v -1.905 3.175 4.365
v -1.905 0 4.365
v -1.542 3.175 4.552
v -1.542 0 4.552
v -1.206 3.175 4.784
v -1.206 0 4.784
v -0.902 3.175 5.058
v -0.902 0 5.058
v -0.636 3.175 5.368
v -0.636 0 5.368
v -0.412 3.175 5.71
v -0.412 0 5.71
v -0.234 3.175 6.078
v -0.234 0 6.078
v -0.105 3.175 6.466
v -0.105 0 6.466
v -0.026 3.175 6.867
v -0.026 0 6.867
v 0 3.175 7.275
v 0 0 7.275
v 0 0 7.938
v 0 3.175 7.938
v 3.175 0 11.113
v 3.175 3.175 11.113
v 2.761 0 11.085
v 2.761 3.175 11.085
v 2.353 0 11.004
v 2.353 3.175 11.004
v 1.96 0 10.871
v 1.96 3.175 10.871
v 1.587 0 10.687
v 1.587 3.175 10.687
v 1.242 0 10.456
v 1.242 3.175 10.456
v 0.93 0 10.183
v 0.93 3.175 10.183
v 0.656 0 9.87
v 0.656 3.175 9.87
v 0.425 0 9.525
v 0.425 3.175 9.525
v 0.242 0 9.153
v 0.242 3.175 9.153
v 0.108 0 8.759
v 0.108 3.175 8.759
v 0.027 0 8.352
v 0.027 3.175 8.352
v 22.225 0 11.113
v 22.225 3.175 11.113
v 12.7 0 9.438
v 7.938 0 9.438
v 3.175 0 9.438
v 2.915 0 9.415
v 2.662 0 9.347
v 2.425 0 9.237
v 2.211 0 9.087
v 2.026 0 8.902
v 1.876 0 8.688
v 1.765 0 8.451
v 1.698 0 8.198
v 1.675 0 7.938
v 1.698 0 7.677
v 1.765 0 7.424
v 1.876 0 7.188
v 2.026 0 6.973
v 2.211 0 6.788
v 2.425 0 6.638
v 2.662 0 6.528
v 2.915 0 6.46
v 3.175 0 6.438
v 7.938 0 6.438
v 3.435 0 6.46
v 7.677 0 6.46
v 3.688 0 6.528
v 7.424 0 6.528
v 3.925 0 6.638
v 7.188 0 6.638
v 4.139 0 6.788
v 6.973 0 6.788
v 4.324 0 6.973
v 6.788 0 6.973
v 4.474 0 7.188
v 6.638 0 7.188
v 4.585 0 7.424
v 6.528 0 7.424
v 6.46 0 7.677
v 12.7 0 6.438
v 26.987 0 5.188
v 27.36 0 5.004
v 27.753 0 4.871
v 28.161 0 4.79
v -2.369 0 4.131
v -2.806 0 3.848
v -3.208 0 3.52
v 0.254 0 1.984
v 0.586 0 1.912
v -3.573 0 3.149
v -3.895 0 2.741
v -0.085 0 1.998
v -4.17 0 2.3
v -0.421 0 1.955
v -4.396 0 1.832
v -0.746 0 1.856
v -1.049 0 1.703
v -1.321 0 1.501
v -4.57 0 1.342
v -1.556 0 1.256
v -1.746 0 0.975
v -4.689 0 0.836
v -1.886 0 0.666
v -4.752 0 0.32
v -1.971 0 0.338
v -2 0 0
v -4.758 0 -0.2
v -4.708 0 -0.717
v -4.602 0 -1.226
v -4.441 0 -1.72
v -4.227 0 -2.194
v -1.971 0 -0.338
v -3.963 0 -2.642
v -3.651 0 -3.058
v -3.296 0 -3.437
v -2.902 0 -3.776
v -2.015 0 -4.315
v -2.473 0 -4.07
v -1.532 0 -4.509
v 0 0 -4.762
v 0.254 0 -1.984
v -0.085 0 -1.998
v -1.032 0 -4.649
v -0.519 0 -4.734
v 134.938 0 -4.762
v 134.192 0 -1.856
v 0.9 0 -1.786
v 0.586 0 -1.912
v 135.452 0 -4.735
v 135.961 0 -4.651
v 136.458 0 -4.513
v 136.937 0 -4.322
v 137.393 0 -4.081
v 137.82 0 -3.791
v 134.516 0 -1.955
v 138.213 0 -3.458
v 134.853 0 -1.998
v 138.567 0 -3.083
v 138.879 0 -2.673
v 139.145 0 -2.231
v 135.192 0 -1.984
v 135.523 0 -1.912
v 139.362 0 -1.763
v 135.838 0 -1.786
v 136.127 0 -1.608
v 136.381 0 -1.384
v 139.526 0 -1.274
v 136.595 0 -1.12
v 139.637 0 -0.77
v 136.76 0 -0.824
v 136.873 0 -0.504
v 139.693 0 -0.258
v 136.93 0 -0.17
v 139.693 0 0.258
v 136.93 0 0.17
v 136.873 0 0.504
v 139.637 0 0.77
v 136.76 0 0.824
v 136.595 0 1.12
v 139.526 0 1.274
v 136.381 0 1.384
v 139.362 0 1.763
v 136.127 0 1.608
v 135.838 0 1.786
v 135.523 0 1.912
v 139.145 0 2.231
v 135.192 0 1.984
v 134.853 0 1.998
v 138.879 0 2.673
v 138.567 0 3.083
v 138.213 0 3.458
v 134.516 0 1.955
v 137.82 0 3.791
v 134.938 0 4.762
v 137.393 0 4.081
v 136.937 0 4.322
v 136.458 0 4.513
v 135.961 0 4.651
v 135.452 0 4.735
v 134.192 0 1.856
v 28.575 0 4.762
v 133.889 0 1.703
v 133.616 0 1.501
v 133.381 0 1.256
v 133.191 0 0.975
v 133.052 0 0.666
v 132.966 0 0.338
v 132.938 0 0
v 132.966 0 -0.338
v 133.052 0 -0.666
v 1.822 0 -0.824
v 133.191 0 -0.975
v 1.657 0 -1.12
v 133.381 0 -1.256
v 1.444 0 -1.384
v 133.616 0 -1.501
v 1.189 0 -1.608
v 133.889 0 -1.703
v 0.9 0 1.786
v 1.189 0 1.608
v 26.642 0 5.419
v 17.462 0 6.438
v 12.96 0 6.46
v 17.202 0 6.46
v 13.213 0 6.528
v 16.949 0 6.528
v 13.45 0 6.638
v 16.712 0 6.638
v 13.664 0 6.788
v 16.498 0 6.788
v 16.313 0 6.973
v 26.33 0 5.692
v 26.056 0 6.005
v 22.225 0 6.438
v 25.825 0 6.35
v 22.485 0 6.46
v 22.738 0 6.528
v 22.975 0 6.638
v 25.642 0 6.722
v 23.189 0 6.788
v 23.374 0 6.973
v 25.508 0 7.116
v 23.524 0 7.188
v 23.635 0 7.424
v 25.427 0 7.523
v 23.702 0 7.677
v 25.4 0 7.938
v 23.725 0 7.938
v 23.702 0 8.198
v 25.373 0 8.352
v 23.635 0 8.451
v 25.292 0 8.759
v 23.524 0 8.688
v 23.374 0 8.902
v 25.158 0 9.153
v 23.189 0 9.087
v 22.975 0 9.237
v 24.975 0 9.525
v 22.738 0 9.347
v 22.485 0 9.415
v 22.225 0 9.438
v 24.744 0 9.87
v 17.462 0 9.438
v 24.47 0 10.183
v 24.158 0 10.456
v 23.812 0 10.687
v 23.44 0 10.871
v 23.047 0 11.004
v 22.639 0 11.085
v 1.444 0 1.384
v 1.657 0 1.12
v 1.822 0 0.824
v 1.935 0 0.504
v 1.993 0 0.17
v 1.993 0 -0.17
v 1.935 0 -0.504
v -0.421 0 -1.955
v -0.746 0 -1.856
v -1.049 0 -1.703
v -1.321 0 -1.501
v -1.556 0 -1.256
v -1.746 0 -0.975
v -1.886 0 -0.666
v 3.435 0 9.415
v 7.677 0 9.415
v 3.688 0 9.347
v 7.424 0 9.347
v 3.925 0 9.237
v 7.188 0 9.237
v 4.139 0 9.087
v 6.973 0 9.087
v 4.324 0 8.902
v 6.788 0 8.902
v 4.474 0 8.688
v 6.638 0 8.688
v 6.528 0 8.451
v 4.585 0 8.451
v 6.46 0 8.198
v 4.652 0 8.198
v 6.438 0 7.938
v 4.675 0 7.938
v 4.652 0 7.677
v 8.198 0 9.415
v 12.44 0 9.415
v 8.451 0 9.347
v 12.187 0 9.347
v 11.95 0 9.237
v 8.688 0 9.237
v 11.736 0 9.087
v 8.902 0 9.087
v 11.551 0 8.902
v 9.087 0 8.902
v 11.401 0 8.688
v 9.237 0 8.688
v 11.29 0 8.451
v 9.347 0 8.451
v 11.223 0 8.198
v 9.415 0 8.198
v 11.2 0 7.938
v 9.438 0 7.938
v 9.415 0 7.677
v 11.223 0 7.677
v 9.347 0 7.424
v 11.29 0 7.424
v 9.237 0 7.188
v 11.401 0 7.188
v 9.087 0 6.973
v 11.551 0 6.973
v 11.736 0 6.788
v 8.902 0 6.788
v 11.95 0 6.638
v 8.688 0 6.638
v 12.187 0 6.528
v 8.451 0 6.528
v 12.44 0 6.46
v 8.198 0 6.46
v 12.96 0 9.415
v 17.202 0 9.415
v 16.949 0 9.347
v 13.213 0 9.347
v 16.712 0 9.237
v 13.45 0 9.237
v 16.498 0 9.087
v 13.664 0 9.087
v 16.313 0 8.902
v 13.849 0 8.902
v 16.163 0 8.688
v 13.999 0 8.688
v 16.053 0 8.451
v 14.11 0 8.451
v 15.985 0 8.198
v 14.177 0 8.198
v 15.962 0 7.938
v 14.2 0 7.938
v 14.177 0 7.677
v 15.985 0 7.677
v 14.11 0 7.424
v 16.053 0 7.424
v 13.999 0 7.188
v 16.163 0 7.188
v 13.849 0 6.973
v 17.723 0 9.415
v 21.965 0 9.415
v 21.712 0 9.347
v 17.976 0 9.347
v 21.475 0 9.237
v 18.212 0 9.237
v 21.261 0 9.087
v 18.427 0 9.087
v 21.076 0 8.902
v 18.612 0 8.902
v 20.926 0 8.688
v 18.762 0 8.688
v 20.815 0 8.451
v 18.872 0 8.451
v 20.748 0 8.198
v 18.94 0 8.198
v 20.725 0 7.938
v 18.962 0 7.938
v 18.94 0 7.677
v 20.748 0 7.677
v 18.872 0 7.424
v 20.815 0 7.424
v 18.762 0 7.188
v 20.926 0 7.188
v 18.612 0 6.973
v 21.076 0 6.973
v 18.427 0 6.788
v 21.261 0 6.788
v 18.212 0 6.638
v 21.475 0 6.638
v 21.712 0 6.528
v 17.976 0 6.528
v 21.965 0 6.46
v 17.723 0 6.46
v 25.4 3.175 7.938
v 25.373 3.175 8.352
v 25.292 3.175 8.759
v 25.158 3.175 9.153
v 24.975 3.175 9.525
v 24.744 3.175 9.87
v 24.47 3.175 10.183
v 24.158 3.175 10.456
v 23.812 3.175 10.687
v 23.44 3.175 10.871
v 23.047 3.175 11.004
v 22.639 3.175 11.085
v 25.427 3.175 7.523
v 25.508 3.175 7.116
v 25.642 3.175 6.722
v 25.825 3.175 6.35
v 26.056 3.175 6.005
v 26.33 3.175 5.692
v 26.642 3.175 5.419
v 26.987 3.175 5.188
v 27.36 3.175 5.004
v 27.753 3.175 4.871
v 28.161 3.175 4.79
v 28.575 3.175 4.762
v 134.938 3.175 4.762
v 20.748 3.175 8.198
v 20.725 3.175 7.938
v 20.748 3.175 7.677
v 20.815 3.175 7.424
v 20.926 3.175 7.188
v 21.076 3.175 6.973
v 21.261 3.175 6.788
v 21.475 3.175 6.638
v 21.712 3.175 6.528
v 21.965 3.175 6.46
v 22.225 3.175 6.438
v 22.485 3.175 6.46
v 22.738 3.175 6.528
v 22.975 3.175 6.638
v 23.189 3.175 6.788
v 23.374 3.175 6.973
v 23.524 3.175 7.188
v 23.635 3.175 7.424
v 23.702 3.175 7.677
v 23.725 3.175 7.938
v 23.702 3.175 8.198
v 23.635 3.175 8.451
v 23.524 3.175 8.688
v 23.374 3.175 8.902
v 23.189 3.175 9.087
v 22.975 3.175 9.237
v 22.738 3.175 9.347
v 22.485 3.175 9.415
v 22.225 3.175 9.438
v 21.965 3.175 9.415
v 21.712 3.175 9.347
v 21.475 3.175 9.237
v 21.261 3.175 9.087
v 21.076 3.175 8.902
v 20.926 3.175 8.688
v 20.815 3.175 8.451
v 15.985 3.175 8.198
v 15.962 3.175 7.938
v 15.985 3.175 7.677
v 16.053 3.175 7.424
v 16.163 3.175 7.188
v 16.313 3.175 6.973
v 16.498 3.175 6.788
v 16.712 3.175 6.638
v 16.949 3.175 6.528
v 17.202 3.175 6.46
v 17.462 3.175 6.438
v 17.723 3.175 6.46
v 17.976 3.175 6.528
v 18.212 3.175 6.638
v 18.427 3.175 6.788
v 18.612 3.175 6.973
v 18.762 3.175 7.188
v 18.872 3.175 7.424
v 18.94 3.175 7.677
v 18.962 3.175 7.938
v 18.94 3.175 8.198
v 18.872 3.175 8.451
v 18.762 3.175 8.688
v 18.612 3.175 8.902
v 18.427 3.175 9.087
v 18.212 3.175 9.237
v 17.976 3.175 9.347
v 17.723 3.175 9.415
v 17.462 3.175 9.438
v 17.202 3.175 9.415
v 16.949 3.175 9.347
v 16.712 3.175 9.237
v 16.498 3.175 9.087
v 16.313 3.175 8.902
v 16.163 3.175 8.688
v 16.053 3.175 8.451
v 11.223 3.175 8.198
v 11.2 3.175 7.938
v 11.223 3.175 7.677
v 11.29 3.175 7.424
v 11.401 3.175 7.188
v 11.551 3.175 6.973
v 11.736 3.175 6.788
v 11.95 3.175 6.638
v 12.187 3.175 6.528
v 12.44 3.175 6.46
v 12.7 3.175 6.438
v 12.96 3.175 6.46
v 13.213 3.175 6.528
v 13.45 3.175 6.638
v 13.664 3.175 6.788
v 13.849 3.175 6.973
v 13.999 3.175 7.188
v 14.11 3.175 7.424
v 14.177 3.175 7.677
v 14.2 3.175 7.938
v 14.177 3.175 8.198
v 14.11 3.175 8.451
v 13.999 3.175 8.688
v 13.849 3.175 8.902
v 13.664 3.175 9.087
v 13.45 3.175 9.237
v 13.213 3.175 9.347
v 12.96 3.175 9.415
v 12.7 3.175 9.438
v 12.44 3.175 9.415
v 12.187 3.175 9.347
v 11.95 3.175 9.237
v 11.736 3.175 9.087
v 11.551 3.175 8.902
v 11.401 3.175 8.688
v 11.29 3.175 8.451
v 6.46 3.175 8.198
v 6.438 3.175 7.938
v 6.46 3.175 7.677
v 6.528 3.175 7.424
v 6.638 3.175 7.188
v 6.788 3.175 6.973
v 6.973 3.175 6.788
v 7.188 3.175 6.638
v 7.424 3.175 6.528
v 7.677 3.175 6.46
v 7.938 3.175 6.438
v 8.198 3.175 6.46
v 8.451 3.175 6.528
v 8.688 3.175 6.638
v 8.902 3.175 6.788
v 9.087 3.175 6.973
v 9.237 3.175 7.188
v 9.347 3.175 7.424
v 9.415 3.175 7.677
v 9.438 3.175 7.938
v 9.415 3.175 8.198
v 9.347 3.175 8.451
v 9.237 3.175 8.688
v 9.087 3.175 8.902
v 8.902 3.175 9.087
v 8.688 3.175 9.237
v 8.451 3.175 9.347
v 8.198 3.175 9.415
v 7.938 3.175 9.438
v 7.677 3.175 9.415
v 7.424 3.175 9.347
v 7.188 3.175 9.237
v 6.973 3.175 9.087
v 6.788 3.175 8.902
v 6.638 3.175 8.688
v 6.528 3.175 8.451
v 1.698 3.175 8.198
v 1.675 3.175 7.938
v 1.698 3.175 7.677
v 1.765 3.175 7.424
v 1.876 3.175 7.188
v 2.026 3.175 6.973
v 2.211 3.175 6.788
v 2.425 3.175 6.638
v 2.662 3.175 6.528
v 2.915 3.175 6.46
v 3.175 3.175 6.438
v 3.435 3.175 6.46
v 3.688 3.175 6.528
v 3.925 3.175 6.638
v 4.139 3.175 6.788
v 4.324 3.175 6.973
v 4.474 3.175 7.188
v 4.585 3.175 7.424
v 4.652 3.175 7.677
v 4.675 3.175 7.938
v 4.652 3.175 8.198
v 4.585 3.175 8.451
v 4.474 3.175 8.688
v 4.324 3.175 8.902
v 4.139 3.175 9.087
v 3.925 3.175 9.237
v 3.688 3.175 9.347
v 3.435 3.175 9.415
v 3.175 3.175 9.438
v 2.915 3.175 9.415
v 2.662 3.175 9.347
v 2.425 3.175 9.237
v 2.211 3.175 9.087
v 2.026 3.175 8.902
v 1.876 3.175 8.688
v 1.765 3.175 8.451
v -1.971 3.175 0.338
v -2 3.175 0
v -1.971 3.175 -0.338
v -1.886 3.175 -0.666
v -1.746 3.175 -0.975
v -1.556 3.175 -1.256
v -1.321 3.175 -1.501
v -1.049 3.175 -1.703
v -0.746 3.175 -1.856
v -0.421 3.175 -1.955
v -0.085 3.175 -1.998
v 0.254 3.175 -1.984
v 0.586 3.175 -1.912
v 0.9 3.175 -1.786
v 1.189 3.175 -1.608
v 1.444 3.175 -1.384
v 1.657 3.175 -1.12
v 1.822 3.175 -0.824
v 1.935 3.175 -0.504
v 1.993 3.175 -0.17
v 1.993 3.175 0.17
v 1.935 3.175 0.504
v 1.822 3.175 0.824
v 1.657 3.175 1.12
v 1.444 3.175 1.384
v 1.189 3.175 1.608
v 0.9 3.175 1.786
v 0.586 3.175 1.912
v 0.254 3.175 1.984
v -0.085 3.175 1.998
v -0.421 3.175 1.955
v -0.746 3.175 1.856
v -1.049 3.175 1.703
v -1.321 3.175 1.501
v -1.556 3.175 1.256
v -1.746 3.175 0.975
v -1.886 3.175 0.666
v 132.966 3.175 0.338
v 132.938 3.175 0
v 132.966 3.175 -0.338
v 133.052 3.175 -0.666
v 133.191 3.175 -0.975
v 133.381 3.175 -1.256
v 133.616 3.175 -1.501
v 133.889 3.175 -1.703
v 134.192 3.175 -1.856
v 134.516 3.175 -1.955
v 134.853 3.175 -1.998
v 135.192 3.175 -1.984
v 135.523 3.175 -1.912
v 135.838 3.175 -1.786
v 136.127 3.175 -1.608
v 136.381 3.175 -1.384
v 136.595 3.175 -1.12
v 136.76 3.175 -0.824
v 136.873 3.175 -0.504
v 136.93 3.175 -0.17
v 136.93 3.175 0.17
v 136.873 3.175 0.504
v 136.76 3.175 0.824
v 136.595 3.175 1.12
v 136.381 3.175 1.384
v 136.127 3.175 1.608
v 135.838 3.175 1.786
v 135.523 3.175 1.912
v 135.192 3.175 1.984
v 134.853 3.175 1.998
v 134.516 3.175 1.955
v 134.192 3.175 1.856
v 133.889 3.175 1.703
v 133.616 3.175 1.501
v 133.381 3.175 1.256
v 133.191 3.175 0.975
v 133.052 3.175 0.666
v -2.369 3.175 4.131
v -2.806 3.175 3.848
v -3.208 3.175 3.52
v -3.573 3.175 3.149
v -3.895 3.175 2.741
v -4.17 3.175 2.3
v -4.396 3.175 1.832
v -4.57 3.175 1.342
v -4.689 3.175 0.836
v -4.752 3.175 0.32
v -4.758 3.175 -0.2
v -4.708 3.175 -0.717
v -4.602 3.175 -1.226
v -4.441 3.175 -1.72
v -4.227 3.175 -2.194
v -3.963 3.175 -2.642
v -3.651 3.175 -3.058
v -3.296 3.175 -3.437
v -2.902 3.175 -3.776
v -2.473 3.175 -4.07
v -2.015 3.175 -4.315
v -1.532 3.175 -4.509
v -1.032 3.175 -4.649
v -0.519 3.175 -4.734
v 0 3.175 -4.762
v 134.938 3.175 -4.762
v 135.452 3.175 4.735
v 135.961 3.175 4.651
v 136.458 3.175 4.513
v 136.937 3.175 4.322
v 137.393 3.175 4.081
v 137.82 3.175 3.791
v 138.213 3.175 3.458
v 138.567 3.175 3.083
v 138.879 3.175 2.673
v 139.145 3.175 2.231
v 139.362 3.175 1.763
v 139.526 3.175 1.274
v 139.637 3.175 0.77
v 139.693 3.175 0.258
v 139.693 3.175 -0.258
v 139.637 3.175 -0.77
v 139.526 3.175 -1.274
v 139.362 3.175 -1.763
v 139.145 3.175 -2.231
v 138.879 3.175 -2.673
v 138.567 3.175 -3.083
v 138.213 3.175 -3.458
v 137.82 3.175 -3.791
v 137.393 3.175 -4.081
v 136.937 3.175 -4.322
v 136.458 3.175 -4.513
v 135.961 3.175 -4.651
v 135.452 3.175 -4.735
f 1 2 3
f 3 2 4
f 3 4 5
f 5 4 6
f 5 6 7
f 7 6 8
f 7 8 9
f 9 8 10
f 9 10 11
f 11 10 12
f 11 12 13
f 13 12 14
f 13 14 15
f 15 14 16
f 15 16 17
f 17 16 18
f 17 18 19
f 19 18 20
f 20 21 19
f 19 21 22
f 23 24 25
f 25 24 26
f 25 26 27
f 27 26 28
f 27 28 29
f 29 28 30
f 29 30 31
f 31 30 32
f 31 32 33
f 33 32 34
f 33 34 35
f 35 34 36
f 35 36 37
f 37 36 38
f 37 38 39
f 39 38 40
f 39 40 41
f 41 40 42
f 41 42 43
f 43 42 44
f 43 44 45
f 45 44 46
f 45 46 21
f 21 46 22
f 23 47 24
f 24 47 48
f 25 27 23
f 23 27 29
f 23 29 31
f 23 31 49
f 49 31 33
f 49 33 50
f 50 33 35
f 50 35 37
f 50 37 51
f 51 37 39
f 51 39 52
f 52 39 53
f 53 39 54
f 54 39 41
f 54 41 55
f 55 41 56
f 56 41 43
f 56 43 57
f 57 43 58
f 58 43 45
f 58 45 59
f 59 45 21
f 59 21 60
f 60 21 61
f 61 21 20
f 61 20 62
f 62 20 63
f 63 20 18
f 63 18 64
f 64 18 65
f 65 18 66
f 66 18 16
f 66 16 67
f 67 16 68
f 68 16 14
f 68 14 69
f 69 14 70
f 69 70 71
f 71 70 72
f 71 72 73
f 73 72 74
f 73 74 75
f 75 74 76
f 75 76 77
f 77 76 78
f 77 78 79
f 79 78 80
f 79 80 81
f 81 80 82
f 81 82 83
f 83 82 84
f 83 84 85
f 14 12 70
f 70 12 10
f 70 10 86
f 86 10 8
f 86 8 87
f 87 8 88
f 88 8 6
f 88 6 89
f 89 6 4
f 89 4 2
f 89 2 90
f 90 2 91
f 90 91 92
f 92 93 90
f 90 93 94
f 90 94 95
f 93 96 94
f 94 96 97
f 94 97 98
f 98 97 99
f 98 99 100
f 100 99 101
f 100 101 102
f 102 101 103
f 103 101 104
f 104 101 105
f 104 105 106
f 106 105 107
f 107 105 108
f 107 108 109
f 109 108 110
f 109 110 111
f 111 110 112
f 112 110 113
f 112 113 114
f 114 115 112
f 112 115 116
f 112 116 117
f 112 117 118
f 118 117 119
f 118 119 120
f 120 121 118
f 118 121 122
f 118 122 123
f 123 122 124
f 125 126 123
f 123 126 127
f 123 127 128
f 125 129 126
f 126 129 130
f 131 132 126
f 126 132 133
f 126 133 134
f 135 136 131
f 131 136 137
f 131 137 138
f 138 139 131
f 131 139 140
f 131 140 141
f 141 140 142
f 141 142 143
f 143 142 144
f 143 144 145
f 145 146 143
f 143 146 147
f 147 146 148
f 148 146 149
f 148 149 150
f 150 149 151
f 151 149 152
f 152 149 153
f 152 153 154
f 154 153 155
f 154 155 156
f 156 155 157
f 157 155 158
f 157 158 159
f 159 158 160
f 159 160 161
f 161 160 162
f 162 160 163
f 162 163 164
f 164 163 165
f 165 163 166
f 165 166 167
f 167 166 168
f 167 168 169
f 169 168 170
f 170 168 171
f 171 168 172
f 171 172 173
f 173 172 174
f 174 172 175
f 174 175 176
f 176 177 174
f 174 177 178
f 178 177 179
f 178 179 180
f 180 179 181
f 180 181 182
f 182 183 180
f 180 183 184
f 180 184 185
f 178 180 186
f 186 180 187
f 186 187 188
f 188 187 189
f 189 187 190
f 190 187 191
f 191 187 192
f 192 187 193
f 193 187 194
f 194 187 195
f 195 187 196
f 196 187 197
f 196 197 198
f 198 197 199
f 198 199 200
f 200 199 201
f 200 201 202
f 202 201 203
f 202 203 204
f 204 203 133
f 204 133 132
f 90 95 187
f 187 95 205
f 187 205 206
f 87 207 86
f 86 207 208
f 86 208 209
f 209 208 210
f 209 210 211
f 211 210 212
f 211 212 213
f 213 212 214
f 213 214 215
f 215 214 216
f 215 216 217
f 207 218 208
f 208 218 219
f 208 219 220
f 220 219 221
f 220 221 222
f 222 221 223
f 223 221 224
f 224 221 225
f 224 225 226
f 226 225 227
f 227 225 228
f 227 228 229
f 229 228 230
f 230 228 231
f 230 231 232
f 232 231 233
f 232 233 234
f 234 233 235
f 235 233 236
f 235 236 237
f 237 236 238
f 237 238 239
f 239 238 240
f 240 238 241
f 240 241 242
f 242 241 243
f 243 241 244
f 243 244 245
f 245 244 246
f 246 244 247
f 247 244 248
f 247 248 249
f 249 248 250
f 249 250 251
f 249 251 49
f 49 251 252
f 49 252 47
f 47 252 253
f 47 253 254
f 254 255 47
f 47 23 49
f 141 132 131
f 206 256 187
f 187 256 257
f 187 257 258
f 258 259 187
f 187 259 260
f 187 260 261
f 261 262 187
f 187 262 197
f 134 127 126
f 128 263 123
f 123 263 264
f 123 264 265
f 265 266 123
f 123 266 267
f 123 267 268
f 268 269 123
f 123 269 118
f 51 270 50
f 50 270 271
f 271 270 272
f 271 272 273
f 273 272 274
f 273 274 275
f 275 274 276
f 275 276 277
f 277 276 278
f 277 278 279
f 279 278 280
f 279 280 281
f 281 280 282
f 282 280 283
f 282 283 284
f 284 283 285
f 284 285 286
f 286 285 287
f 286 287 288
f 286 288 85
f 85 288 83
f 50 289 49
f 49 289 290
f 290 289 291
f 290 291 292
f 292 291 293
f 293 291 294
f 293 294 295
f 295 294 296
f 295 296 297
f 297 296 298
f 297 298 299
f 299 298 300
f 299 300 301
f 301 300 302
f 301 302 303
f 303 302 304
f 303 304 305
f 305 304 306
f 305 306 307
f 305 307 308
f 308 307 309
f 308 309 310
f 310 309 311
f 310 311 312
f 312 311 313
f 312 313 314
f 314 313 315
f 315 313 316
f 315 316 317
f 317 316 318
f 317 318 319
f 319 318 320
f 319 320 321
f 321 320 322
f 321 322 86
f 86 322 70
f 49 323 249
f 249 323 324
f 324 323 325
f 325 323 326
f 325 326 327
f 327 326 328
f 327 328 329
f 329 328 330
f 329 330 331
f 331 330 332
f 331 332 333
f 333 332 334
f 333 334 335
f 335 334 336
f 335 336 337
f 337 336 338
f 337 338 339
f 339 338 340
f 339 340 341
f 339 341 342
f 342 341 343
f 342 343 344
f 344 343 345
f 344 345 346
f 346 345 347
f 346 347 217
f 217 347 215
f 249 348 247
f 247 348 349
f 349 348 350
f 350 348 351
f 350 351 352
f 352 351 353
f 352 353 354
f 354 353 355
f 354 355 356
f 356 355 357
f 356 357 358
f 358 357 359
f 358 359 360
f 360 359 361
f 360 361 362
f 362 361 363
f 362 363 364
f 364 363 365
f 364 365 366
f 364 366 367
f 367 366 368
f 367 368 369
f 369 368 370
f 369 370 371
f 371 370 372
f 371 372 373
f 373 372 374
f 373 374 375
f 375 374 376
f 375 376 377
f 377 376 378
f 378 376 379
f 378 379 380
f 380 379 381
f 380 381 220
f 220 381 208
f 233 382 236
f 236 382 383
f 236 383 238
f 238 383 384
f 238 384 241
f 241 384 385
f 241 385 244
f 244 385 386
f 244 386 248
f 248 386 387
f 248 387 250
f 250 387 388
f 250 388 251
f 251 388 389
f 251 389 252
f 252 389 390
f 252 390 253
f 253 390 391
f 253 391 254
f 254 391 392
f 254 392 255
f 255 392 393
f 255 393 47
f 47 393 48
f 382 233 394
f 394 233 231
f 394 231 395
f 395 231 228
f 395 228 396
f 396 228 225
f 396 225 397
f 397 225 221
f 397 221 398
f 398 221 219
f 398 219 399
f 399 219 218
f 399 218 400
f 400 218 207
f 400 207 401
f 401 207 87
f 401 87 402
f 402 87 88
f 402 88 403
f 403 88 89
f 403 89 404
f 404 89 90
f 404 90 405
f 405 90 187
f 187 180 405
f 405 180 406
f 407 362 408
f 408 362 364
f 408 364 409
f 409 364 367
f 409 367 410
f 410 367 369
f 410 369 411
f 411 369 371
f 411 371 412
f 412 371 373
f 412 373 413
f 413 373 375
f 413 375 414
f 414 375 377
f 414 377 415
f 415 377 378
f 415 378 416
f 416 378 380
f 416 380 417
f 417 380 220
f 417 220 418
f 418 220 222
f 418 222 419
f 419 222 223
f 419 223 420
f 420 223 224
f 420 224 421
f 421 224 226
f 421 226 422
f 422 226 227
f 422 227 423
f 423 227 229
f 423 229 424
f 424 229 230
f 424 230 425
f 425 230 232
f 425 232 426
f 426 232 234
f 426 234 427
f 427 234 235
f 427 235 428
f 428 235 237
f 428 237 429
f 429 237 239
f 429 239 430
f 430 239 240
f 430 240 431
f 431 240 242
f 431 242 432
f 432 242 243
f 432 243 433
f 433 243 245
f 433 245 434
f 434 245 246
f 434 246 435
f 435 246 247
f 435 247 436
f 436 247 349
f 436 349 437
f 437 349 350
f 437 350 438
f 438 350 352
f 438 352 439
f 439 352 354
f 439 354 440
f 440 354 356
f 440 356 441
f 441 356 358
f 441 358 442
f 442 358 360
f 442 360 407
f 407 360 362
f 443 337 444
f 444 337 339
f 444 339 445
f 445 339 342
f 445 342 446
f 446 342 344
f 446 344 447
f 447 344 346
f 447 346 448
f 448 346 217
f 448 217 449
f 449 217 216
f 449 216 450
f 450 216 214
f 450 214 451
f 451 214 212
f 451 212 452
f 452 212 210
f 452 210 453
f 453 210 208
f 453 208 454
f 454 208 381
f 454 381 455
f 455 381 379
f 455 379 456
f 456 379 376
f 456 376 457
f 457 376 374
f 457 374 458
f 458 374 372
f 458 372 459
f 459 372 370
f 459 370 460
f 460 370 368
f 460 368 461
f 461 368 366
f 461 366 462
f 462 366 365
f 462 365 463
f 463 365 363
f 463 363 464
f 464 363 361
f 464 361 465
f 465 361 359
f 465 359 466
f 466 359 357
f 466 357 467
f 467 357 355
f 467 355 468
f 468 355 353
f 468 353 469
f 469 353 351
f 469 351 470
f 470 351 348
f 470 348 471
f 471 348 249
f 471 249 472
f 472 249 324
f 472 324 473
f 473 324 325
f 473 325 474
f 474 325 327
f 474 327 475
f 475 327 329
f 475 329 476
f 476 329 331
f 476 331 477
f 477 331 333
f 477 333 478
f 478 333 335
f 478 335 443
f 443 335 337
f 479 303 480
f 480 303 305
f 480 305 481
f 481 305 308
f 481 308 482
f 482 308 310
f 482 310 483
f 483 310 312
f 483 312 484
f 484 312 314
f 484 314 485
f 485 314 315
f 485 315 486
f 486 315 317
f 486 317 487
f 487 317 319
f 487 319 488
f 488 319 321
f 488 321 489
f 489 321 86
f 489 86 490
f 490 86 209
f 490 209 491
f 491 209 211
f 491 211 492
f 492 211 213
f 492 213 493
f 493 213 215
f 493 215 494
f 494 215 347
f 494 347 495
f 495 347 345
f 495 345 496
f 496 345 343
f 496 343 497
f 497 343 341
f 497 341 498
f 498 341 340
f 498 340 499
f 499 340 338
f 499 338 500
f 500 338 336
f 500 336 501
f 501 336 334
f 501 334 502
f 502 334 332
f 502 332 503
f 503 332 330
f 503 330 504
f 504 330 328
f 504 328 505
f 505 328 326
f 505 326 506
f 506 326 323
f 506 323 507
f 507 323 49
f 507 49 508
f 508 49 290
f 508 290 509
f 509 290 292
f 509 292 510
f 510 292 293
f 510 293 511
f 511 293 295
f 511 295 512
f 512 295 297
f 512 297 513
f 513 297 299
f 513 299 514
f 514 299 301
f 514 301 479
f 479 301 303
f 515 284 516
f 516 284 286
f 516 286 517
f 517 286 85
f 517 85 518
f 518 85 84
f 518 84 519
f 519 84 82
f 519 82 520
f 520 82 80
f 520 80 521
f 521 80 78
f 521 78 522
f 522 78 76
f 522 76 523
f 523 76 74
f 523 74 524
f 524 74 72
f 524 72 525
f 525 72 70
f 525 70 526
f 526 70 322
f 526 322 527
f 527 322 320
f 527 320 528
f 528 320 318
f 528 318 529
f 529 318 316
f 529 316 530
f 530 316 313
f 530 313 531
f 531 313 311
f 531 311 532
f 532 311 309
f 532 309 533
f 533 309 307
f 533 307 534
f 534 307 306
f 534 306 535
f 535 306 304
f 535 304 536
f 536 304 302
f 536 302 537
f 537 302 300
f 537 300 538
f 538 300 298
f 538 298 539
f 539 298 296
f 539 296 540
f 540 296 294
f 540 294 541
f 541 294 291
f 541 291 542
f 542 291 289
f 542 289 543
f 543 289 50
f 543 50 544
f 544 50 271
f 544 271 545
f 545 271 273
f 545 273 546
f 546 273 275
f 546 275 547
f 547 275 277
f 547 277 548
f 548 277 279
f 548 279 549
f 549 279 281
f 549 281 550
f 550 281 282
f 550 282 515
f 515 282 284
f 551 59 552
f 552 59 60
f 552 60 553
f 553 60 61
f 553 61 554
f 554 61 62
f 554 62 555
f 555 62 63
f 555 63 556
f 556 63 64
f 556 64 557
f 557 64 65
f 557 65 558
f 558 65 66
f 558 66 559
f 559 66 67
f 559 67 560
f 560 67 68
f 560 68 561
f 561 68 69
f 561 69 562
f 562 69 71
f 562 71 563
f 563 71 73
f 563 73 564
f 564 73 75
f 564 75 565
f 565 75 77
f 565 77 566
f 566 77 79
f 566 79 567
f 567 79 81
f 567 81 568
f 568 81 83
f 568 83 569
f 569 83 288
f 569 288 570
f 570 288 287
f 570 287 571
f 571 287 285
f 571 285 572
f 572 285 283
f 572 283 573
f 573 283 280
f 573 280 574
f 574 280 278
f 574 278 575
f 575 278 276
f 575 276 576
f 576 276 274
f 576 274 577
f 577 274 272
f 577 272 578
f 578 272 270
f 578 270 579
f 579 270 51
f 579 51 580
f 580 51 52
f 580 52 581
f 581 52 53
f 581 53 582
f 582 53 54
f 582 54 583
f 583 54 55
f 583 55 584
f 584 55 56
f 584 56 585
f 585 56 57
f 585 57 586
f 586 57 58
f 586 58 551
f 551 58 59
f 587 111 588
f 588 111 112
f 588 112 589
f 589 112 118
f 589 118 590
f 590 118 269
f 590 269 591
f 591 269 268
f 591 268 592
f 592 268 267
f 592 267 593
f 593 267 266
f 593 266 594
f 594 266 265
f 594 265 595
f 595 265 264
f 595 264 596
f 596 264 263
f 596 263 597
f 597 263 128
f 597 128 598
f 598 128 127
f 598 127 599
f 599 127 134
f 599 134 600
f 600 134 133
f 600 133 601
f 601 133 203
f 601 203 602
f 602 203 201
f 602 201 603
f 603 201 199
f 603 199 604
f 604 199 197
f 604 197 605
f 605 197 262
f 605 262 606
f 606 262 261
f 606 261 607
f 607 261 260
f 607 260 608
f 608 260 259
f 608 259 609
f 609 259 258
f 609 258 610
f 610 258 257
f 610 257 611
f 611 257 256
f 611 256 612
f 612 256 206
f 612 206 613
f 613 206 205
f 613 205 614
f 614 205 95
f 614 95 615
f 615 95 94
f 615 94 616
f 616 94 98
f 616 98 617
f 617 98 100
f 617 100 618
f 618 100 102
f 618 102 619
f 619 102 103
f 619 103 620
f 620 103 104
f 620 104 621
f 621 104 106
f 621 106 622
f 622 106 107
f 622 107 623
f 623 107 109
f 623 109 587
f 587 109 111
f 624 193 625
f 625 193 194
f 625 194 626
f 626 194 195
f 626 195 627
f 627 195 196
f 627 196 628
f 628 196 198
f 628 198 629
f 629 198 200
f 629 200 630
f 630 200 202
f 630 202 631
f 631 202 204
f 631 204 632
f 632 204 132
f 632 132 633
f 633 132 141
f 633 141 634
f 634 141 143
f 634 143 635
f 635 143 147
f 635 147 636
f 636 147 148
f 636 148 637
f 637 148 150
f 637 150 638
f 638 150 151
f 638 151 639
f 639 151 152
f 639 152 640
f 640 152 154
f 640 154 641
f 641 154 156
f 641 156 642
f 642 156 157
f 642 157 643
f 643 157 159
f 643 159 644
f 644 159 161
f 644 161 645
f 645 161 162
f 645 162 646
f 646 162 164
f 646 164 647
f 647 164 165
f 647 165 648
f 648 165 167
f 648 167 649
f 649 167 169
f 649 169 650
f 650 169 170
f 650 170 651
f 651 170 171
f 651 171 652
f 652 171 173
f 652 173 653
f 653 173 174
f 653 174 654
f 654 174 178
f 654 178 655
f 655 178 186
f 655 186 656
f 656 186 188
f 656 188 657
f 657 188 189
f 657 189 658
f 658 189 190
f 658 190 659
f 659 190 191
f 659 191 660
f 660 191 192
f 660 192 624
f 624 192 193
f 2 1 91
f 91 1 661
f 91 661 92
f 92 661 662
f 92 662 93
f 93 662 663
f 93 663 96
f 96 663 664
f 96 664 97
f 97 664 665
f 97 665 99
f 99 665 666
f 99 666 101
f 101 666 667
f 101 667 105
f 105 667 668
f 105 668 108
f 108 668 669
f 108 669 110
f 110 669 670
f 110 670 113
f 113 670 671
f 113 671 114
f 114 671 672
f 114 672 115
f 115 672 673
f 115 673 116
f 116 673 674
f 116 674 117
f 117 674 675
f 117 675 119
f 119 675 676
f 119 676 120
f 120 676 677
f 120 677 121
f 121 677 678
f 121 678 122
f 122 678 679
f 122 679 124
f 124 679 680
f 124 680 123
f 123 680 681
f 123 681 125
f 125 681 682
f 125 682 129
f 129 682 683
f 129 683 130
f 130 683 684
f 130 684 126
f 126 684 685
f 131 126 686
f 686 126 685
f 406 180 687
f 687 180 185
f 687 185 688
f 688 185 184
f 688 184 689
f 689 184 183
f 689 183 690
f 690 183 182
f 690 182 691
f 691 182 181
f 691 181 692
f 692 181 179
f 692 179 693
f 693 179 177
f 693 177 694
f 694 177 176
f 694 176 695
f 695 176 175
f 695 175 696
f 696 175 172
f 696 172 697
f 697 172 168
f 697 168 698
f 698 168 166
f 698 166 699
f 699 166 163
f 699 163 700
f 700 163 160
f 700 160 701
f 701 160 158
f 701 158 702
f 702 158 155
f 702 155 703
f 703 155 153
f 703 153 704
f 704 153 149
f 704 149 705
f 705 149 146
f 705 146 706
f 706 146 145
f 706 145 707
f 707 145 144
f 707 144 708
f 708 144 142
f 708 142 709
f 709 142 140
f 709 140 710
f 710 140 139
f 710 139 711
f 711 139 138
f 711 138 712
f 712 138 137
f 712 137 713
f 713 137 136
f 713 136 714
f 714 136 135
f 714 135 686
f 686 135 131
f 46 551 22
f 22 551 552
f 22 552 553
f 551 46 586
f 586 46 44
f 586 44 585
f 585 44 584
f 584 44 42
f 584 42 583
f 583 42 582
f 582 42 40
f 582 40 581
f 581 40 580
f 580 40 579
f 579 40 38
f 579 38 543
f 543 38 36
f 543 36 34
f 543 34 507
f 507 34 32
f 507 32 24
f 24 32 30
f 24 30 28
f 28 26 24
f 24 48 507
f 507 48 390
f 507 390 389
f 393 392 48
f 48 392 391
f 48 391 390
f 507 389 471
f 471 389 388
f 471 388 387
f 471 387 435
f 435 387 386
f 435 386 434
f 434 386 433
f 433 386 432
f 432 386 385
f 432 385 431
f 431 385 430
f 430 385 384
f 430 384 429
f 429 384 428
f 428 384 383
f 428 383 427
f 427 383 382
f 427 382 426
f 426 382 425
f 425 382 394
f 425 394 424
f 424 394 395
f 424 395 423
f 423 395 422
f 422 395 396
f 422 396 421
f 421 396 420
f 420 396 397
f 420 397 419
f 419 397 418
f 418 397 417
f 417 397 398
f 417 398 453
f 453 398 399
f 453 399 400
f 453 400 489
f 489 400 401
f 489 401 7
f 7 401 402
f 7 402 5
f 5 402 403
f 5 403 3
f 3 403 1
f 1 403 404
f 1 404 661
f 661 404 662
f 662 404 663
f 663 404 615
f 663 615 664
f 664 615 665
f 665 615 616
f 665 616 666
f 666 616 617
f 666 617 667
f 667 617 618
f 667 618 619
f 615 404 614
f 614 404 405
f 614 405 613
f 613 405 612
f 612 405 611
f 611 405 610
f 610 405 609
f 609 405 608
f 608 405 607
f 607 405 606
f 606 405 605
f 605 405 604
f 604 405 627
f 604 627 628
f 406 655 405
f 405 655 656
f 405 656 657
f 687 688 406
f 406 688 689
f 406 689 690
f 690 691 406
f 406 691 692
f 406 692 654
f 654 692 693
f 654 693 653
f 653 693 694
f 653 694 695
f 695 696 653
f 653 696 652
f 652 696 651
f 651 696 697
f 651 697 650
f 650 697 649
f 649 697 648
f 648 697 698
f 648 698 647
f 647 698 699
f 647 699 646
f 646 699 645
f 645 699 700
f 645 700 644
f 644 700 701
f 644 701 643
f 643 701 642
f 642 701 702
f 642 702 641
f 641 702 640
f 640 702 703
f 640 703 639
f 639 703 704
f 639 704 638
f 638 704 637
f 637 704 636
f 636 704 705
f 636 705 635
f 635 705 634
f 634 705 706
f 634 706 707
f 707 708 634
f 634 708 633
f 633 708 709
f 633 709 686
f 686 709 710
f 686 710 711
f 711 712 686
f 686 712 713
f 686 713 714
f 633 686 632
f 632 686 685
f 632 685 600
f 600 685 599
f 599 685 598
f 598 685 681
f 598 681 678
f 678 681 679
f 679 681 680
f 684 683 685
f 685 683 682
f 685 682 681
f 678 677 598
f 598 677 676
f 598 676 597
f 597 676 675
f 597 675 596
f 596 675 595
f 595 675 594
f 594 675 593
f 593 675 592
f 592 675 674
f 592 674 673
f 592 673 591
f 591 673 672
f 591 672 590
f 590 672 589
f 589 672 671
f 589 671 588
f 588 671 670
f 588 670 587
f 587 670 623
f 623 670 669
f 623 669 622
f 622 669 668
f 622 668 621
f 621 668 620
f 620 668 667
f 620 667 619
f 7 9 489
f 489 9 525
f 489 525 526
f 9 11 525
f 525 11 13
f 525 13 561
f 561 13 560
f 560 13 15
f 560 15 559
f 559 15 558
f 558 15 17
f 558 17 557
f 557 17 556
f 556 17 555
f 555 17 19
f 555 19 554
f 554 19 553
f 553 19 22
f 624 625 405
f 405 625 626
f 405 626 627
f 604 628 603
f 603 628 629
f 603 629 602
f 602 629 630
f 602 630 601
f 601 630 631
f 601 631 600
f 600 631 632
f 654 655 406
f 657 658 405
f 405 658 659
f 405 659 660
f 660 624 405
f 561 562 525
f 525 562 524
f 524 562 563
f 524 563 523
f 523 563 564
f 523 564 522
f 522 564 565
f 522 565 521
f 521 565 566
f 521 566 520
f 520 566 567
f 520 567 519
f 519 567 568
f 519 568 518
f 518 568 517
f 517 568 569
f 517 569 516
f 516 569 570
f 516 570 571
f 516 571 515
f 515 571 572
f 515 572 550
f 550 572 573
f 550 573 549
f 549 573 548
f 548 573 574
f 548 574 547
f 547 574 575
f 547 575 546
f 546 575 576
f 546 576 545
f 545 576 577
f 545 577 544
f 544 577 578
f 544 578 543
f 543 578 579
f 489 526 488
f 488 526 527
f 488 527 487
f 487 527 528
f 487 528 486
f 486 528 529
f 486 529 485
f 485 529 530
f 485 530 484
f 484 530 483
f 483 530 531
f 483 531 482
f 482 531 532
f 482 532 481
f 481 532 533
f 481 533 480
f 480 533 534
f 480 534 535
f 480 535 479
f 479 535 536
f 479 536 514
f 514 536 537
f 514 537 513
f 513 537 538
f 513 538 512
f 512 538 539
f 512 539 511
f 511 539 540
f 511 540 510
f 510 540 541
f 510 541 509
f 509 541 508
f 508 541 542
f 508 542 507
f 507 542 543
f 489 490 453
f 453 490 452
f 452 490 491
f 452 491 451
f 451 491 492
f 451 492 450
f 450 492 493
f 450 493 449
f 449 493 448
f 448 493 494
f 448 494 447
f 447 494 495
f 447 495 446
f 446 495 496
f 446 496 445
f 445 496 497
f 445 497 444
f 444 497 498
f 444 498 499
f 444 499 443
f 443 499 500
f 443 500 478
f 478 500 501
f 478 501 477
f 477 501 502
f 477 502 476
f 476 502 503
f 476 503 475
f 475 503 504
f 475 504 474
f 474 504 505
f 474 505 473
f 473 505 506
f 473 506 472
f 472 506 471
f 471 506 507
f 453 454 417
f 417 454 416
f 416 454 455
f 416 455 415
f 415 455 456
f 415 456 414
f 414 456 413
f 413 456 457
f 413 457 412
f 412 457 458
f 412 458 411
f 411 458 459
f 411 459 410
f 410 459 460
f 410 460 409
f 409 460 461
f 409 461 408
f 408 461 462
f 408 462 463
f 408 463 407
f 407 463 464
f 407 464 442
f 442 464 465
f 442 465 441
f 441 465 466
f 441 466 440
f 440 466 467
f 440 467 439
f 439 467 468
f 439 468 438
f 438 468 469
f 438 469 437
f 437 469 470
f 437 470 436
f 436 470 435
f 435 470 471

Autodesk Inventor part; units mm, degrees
ref_plane "YZ Plane" through (0, 0, 0) normal (1, 0, 0) x (0, 1, 0)
ref_plane "XZ Plane" through (0, 0, 0) normal (0, 1, 0) x (-1, 0, 0)
ref_plane "XY Plane" through (0, 0, 0) normal (0, 0, 1) x (1, 0, 0)
sketch "Sketch1" plane through (0, 0, 0) normal (0, 1, 0) x (-1, 0, 0)
  line L0 (0, 0) -> (-134.9375, 0) construction
  line L1 (0, 4.7625) -> (-134.9375, 4.7625)
  line L2 (-134.9375, -4.7625) -> (0, -4.7625)
  arc A0 (0, -4.7625) -> (0, 4.7625) centre (0, 0) ccw
  arc A1 (-134.9375, 4.7625) -> (-134.9375, -4.7625) centre (-134.9375, 0) ccw
  circle A2 centre (0, 0) radius 2
  circle A3 centre (-134.9375, 0) radius 2
  line L3 (0, 4.7625) -> (-25.4, 4.7625)
  line L4 (-25.4, 4.7625) -> (-25.4, 11.1125)
  line L5 (-25.4, 11.1125) -> (0, 11.1125)
  line L6 (0, 11.1125) -> (0, 4.7625)
  line L7 (-25.4, 7.9375) -> (0, 7.9375) construction
  circle A4 centre (-22.225, 7.9375) radius 1.5
  circle A5 centre (-17.4625, 7.9375) radius 1.5
  circle A6 centre (-12.7, 7.9375) radius 1.5
  circle A7 centre (-7.9375, 7.9375) radius 1.5
  circle A8 centre (-3.175, 7.9375) radius 1.5
  point P0 (-67.4688, 0)
  dimension "d0" = 134.9375
  dimension "d1" = 9.525
  dimension "d2" = 4
  dimension "d3" = 4
  dimension "d6" = 25.4
  dimension "d7" = 6.35
  dimension "d8" = 3
  dimension "d9" = 3.175
  dimension "d12" = 4.7625
extrude "Extrusion1" add sketch "Sketch1" along normal blind 3.175
fillet "Fillet1" radius 3.175 4 edges at (25.4, 1.5875, 4.7625) (25.4, 1.5875, 11.1125) (0, 1.5875, 11.1125) (0, 1.5875, 4.7625)
equation "\"d2\" = d3"
properties part number "Wind Tool"
